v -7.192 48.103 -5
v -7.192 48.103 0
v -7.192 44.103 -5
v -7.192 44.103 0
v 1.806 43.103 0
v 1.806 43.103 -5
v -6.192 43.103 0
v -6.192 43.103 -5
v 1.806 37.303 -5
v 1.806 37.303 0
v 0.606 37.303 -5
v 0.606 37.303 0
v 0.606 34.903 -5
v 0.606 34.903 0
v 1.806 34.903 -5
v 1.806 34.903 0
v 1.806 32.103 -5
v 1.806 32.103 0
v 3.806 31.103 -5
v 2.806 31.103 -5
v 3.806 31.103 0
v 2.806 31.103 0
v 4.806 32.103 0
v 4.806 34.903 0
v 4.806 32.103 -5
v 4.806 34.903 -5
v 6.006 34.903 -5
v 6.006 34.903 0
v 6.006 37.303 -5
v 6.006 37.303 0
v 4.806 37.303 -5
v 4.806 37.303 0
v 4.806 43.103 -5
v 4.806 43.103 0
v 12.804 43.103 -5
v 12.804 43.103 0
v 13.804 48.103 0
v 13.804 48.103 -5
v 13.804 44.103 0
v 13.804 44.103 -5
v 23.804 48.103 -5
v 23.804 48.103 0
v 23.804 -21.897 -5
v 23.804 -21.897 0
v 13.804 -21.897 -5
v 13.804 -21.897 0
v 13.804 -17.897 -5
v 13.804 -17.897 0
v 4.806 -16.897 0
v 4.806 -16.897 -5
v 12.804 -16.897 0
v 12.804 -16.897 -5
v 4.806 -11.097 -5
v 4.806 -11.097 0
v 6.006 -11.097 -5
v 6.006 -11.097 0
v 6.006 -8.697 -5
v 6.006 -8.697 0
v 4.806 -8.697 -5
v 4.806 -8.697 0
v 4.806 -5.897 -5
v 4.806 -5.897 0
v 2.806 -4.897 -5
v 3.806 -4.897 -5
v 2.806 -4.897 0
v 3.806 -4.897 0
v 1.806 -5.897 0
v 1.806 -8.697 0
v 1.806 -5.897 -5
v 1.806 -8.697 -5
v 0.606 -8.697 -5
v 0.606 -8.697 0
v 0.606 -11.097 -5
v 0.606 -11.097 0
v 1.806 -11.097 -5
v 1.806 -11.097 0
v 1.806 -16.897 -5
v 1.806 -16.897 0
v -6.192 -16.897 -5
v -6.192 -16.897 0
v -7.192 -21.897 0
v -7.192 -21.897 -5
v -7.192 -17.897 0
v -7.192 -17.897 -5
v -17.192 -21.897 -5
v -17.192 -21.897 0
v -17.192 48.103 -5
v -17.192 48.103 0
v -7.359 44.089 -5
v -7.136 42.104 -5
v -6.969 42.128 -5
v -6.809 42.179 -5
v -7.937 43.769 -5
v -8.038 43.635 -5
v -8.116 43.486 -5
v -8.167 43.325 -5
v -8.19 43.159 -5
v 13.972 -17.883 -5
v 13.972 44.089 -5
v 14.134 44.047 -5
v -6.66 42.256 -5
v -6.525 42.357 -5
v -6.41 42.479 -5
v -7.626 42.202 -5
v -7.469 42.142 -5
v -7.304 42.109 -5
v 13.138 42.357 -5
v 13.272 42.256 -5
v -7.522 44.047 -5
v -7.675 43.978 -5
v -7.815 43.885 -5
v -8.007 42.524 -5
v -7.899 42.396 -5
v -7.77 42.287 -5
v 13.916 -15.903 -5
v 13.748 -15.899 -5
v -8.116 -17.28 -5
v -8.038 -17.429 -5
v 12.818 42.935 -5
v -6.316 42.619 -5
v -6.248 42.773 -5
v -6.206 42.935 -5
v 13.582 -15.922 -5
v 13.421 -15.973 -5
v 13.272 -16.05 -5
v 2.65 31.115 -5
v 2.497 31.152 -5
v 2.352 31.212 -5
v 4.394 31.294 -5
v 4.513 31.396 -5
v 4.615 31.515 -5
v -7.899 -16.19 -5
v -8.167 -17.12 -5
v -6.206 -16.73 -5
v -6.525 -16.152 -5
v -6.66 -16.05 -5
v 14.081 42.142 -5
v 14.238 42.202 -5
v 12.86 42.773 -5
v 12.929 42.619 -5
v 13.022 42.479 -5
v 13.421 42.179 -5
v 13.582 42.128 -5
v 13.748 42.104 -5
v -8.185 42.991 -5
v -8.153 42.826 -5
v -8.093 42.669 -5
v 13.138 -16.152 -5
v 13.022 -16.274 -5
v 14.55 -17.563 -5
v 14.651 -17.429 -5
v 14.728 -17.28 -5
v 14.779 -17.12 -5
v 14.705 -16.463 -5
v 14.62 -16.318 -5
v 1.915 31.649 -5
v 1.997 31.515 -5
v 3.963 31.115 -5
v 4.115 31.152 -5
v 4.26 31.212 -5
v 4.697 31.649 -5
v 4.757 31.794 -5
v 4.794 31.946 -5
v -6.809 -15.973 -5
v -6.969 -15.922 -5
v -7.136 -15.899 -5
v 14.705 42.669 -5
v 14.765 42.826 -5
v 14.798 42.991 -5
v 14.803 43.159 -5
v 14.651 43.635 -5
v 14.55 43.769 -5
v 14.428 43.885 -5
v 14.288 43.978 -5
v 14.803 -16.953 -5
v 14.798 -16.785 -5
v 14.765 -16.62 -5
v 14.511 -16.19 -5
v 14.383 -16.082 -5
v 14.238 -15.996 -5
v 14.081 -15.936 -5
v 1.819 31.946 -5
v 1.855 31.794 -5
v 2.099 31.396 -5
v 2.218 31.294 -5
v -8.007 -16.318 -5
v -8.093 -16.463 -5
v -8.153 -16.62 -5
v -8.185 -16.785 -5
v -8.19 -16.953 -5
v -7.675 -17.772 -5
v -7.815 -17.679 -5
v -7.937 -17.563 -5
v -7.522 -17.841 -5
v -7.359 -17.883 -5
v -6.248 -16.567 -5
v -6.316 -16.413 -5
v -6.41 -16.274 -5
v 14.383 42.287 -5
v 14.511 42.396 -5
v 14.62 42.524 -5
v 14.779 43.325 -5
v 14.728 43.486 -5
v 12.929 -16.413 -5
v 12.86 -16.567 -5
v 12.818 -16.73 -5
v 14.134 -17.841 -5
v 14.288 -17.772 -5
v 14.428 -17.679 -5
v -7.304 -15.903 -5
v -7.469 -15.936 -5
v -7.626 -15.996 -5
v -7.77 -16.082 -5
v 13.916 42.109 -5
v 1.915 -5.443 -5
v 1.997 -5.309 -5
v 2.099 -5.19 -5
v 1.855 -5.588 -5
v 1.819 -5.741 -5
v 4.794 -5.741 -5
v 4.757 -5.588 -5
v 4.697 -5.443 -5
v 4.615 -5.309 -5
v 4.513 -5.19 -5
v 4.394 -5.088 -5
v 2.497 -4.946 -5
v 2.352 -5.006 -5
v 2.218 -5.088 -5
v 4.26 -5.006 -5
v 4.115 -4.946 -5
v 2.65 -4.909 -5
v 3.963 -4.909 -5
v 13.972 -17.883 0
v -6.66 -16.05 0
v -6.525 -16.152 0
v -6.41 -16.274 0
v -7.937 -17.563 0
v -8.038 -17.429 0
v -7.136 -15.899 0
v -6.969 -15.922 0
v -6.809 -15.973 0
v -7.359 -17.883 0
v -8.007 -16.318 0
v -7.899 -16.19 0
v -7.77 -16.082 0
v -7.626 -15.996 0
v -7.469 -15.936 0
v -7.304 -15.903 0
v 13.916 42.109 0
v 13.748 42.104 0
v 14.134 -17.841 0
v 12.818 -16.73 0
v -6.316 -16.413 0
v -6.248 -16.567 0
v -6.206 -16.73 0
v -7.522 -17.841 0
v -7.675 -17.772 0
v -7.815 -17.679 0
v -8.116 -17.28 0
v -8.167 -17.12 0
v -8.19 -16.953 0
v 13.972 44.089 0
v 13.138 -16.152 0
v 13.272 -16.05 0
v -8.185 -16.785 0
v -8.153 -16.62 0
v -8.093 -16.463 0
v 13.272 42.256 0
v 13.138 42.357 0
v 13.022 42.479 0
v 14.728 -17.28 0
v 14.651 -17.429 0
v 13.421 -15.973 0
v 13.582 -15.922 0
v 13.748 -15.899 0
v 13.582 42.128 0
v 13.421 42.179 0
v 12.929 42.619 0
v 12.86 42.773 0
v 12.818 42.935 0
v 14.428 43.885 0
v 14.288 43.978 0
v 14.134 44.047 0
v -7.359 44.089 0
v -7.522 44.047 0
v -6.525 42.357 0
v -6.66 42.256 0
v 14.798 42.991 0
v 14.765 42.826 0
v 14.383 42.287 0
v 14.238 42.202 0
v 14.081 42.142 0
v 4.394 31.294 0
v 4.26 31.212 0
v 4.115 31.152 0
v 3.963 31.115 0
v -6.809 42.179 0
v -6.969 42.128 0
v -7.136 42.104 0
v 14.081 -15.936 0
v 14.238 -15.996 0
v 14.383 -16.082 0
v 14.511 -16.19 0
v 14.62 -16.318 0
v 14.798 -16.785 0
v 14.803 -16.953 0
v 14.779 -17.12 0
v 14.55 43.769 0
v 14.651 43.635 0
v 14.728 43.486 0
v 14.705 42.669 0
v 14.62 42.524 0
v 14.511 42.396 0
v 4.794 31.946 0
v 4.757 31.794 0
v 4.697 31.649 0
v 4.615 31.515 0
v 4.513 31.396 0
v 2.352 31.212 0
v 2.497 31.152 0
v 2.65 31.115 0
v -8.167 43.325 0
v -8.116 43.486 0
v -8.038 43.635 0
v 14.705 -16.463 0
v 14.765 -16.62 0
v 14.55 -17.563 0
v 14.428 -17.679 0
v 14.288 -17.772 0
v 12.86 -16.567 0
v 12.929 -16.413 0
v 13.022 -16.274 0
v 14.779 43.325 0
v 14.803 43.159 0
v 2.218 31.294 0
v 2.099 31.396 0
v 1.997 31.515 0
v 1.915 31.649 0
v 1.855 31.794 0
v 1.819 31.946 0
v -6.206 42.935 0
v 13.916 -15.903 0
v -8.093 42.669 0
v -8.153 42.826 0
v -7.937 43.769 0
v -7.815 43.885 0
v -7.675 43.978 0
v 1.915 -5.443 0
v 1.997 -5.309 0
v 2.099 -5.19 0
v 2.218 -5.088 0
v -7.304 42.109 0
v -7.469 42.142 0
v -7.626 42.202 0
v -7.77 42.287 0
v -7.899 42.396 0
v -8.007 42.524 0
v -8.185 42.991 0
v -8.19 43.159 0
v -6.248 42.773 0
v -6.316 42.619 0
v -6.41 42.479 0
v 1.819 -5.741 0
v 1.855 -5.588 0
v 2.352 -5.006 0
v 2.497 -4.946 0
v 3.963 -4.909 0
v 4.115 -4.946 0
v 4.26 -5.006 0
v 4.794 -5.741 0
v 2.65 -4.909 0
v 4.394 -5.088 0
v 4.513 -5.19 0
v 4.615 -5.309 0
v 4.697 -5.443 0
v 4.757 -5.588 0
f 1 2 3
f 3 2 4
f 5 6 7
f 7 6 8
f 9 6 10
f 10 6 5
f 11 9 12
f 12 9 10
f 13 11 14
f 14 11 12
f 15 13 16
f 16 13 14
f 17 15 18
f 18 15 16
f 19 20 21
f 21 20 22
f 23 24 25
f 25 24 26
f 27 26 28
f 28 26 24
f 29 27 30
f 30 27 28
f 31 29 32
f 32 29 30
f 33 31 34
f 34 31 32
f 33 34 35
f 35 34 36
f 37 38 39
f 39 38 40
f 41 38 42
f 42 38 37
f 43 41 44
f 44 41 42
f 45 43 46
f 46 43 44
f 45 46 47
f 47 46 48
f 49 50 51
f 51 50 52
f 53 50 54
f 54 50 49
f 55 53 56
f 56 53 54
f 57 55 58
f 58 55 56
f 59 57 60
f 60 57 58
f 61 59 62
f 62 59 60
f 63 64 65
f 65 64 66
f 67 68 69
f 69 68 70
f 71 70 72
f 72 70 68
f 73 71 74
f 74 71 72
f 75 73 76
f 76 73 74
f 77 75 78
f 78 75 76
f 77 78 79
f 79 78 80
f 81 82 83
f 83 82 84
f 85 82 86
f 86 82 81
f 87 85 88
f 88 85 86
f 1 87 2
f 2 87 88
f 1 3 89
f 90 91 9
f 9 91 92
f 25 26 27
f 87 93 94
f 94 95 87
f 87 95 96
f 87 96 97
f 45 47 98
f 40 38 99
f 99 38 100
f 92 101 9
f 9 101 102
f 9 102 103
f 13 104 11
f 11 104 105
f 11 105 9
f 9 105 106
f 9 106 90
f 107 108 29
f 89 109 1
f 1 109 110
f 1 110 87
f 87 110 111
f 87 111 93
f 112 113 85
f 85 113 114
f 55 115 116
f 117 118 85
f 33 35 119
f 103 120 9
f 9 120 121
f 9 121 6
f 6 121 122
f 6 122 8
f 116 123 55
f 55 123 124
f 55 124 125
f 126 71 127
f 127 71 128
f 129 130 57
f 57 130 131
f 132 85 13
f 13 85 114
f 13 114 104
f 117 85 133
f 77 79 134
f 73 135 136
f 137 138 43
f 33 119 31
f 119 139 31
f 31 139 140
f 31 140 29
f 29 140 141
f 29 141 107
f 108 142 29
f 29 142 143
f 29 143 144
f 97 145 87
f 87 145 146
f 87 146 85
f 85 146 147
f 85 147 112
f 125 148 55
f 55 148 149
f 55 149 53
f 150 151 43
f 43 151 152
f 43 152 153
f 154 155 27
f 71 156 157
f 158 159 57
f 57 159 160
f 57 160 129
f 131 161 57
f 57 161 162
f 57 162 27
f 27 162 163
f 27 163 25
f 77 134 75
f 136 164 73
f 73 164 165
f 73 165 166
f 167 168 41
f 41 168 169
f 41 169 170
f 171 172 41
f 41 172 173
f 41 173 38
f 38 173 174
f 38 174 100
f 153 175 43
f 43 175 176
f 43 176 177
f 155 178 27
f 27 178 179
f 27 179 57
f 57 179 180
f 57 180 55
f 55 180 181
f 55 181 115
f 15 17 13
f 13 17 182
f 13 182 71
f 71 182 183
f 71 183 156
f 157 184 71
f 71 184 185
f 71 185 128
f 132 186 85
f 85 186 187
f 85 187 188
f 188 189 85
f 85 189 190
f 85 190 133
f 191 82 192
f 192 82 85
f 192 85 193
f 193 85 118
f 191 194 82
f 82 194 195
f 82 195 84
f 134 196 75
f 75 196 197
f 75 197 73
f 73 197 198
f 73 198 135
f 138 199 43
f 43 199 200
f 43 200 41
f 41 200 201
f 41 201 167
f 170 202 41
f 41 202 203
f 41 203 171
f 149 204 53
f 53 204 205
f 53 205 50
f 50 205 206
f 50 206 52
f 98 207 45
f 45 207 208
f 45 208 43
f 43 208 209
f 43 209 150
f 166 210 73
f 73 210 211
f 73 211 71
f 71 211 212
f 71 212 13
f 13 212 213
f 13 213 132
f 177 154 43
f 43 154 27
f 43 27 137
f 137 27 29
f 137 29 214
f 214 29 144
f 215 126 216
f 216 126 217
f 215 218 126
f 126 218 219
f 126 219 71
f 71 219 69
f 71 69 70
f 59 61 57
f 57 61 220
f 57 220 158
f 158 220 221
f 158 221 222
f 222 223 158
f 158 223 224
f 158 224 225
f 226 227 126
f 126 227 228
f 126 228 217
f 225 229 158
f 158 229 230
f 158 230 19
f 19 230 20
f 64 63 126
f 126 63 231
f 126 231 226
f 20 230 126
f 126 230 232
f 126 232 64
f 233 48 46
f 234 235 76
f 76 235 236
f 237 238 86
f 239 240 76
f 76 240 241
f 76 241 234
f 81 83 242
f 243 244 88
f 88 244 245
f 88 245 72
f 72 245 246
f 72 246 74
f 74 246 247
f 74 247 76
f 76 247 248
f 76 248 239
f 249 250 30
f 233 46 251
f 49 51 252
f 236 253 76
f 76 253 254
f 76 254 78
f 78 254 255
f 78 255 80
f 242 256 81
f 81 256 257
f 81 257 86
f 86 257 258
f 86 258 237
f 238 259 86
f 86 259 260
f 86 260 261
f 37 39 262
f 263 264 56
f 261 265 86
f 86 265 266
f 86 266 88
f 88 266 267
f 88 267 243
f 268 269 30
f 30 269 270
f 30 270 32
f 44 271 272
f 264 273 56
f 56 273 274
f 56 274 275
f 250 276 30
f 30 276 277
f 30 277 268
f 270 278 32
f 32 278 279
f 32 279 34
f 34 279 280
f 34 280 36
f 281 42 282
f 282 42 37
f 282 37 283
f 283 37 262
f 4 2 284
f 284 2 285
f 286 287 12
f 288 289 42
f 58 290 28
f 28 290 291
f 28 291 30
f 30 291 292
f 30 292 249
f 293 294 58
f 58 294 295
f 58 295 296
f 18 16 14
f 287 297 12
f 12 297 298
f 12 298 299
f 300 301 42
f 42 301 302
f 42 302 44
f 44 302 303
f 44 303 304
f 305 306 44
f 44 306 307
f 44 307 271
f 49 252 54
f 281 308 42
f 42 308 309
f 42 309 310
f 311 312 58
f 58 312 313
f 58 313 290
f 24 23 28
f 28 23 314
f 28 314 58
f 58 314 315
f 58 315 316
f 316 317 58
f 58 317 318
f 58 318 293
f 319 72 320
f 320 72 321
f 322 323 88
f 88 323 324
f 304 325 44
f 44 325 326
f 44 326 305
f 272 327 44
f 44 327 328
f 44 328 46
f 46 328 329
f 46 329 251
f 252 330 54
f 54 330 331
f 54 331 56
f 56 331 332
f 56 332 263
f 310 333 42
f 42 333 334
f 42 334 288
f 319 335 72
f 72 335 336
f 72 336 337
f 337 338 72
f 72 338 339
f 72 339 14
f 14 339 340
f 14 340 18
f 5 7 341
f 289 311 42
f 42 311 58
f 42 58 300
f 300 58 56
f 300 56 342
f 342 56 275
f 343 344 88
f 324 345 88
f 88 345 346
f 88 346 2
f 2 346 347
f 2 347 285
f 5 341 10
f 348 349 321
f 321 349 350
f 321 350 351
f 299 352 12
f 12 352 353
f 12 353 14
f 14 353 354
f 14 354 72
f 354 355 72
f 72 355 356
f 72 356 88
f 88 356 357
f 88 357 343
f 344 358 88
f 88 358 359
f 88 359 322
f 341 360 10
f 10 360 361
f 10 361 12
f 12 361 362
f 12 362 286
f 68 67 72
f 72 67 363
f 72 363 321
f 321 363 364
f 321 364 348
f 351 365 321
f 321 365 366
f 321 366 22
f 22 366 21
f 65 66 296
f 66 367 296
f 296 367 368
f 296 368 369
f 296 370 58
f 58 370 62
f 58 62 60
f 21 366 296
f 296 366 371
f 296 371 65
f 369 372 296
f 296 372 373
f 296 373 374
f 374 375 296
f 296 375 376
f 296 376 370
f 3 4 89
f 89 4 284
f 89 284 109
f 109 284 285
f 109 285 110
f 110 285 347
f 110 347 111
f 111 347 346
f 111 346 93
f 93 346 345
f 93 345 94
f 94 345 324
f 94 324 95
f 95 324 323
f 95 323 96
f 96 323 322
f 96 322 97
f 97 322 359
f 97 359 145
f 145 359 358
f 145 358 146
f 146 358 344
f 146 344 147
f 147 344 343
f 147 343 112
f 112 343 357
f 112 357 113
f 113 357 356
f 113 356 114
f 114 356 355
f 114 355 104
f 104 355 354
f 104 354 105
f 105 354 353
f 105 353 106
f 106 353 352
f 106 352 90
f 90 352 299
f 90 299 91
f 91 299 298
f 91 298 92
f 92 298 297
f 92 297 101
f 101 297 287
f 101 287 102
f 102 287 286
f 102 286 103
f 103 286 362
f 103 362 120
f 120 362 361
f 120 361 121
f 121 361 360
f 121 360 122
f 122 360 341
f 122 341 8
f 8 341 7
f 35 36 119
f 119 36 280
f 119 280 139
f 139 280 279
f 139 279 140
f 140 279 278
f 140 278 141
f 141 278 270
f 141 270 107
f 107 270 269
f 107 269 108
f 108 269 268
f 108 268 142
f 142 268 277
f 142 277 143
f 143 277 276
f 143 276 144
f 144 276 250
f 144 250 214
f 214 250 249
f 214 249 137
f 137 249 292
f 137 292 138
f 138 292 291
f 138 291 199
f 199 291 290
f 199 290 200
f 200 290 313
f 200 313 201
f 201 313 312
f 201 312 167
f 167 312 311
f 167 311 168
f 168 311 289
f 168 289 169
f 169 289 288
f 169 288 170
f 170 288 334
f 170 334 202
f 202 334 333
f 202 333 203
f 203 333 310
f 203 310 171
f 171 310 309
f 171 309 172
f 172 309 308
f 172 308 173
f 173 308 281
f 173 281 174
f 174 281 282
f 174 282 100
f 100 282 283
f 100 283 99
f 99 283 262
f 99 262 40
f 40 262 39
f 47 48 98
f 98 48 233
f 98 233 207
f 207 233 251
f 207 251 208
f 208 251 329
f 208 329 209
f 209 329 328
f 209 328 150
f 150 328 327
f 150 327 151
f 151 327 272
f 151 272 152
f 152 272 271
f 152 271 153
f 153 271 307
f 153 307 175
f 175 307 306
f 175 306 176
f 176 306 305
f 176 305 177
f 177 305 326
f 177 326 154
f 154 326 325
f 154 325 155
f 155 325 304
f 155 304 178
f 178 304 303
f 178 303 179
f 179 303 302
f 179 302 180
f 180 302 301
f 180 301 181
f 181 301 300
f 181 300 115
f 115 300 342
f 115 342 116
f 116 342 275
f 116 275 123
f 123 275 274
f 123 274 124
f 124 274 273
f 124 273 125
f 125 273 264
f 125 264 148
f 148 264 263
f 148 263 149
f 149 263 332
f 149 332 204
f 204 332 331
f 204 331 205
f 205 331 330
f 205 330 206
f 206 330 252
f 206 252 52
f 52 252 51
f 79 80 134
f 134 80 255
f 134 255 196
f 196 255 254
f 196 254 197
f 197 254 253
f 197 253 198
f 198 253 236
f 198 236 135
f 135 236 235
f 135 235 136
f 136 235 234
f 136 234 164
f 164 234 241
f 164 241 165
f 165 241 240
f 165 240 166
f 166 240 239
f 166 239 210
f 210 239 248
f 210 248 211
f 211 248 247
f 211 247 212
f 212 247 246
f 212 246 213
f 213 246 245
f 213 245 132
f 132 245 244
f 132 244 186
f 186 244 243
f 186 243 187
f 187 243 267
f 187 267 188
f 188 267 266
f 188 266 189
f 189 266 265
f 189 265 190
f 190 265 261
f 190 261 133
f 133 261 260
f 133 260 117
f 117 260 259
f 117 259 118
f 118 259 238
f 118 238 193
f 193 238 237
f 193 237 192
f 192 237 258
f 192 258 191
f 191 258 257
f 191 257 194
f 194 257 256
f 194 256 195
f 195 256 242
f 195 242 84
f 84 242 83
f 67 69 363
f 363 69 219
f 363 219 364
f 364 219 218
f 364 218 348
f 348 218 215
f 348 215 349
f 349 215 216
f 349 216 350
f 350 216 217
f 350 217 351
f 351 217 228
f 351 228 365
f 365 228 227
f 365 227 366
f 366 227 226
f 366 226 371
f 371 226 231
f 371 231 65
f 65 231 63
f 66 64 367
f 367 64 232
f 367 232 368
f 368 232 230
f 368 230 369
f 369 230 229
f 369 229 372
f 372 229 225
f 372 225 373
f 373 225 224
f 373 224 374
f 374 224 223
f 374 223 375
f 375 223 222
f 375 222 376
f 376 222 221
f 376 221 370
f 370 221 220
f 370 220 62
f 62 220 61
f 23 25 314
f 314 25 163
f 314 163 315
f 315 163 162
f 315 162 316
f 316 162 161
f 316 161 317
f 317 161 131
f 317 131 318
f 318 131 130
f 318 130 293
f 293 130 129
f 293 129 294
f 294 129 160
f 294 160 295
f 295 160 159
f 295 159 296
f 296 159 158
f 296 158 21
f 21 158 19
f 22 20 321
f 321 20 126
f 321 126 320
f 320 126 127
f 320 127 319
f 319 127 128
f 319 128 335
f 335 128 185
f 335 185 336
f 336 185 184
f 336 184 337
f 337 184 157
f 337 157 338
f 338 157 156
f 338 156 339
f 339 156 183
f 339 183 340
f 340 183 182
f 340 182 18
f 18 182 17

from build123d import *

# Parameters (mm, degrees)
FLANGE_BASE1_DEPTH    = 5
CORTE_EXTRUS_O1_REACH = 55.903
ESBO_O2_R             = 1
QUEBRA_CANTO1_START   = -5
QUEBRA_CANTO1_DEPTH   = 5


# Read off the part's stored shape, not the designer's step: Quebra-Canto1
# Sheet-metal steps are written as plain solids
with BuildPart() as part:
    # Esboço1 → Flange-base1 (new body)
    with BuildSketch(Plane.XY):
        Polygon((-7.191672609, 43.102851176), (1.806254311, 43.102851176), (1.806254311, 37.302851176), (0.606254311, 37.302851176), (0.606254311, 34.902851176), (1.806254311, 34.902851176), (1.806254311, 31.102851176), (4.806254311, 31.102851176), (4.806254311, 34.902851176), (6.006254311, 34.902851176), (6.006254311, 37.302851176), (4.806254311, 37.302851176), (4.806254311, 43.102851176), (13.804181231, 43.102851176), (13.804181231, 48.102851176), (23.804181231, 48.102851176), (23.804181231, -21.897149822), (13.804181231, -21.897149822), (13.804181231, -16.897149822), (4.806254311, -16.897149822), (4.806254311, -11.097149822), (6.006254311, -11.097149822), (6.006254311, -8.697149822), (4.806254311, -8.697149822), (4.806254311, -4.897149822), (1.806254311, -4.897149822), (1.806254311, -8.697149822), (0.606254311, -8.697149822), (0.606254311, -11.097149822), (1.806254311, -11.097149822), (1.806254311, -16.897149822), (-7.191672609, -16.897149822), (-7.191672609, -21.897149822), (-17.191672609, -21.897149822), (-17.191672609, 48.10285125), (-7.191672609, 48.10285125), align=None)
    extrude(amount=-FLANGE_BASE1_DEPTH)

    # Esboço2 → Corte-extrusão1 (cut, up to next)
    with BuildSketch(Plane.XY, mode=Mode.PRIVATE) as corte_extrus_o1_sk1:
        with Locations((-7.191672609, 43.102851176)):
            Circle(ESBO_O2_R)
    corte_extrus_o1_tool1 = extrude(corte_extrus_o1_sk1.sketch, amount=-CORTE_EXTRUS_O1_REACH, mode=Mode.PRIVATE) & part.part
    # Esboço2 → Corte-extrusão1 (cut, up to next)
    with BuildSketch(Plane.XY, mode=Mode.PRIVATE) as corte_extrus_o1_sk2:
        with Locations((13.804181231, 43.102851176)):
            Circle(ESBO_O2_R)
    corte_extrus_o1_tool2 = extrude(corte_extrus_o1_sk2.sketch, amount=-CORTE_EXTRUS_O1_REACH, mode=Mode.PRIVATE) & part.part
    # Esboço2 → Corte-extrusão1 (cut, up to next)
    with BuildSketch(Plane.XY, mode=Mode.PRIVATE) as corte_extrus_o1_sk3:
        with Locations((13.804181231, -16.897149822)):
            Circle(ESBO_O2_R)
    corte_extrus_o1_tool3 = extrude(corte_extrus_o1_sk3.sketch, amount=-CORTE_EXTRUS_O1_REACH, mode=Mode.PRIVATE) & part.part
    # Esboço2 → Corte-extrusão1 (cut, up to next)
    with BuildSketch(Plane.XY, mode=Mode.PRIVATE) as corte_extrus_o1_sk4:
        with Locations((-7.191672609, -16.897149822)):
            Circle(ESBO_O2_R)
    corte_extrus_o1_tool4 = extrude(corte_extrus_o1_sk4.sketch, amount=-CORTE_EXTRUS_O1_REACH, mode=Mode.PRIVATE) & part.part
    add(corte_extrus_o1_tool1.solids().sort_by_distance((-7.191673, 43.102851, 0))[0], mode=Mode.SUBTRACT)
    add(corte_extrus_o1_tool2.solids().sort_by_distance((13.804181, 43.102851, 0))[0], mode=Mode.SUBTRACT)
    add(corte_extrus_o1_tool3.solids().sort_by_distance((13.804181, -16.89715, 0))[0], mode=Mode.SUBTRACT)
    add(corte_extrus_o1_tool4.solids().sort_by_distance((-7.191673, -16.89715, 0))[0], mode=Mode.SUBTRACT)

    # Quebra-Canto1 outline → Quebra-Canto1 (add)
    with BuildSketch(Plane.XY.offset(QUEBRA_CANTO1_START)):
        with BuildLine():
            Line((1.806254311, -4.897149822), (1.806254311, -5.897149822))
            ThreePointArc((1.806254311, -5.897149822), (2.09914753, -5.190043041), (2.806254311, -4.897149822))
            Line((2.806254311, -4.897149822), (1.806254311, -4.897149822))
        make_face()
        with BuildLine():
            Line((4.806254311, -4.897149822), (3.806254311, -4.897149822))
            ThreePointArc((3.806254311, -4.897149822), (4.513361092, -5.190043041), (4.806254311, -5.897149822))
            Line((4.806254311, -5.897149822), (4.806254311, -4.897149822))
        make_face()
        with BuildLine():
            Line((4.806254311, 31.102851176), (4.806254311, 32.102851176))
            ThreePointArc((4.806254311, 32.102851176), (4.513361092, 31.395744395), (3.806254311, 31.102851176))
            Line((3.806254311, 31.102851176), (4.806254311, 31.102851176))
        make_face()
        with BuildLine():
            Line((1.806254311, 31.102851176), (2.806254311, 31.102851176))
            ThreePointArc((2.806254311, 31.102851176), (2.09914753, 31.395744395), (1.806254311, 32.102851176))
            Line((1.806254311, 32.102851176), (1.806254311, 31.102851176))
        make_face()
    extrude(amount=QUEBRA_CANTO1_DEPTH)


solid = part.part
